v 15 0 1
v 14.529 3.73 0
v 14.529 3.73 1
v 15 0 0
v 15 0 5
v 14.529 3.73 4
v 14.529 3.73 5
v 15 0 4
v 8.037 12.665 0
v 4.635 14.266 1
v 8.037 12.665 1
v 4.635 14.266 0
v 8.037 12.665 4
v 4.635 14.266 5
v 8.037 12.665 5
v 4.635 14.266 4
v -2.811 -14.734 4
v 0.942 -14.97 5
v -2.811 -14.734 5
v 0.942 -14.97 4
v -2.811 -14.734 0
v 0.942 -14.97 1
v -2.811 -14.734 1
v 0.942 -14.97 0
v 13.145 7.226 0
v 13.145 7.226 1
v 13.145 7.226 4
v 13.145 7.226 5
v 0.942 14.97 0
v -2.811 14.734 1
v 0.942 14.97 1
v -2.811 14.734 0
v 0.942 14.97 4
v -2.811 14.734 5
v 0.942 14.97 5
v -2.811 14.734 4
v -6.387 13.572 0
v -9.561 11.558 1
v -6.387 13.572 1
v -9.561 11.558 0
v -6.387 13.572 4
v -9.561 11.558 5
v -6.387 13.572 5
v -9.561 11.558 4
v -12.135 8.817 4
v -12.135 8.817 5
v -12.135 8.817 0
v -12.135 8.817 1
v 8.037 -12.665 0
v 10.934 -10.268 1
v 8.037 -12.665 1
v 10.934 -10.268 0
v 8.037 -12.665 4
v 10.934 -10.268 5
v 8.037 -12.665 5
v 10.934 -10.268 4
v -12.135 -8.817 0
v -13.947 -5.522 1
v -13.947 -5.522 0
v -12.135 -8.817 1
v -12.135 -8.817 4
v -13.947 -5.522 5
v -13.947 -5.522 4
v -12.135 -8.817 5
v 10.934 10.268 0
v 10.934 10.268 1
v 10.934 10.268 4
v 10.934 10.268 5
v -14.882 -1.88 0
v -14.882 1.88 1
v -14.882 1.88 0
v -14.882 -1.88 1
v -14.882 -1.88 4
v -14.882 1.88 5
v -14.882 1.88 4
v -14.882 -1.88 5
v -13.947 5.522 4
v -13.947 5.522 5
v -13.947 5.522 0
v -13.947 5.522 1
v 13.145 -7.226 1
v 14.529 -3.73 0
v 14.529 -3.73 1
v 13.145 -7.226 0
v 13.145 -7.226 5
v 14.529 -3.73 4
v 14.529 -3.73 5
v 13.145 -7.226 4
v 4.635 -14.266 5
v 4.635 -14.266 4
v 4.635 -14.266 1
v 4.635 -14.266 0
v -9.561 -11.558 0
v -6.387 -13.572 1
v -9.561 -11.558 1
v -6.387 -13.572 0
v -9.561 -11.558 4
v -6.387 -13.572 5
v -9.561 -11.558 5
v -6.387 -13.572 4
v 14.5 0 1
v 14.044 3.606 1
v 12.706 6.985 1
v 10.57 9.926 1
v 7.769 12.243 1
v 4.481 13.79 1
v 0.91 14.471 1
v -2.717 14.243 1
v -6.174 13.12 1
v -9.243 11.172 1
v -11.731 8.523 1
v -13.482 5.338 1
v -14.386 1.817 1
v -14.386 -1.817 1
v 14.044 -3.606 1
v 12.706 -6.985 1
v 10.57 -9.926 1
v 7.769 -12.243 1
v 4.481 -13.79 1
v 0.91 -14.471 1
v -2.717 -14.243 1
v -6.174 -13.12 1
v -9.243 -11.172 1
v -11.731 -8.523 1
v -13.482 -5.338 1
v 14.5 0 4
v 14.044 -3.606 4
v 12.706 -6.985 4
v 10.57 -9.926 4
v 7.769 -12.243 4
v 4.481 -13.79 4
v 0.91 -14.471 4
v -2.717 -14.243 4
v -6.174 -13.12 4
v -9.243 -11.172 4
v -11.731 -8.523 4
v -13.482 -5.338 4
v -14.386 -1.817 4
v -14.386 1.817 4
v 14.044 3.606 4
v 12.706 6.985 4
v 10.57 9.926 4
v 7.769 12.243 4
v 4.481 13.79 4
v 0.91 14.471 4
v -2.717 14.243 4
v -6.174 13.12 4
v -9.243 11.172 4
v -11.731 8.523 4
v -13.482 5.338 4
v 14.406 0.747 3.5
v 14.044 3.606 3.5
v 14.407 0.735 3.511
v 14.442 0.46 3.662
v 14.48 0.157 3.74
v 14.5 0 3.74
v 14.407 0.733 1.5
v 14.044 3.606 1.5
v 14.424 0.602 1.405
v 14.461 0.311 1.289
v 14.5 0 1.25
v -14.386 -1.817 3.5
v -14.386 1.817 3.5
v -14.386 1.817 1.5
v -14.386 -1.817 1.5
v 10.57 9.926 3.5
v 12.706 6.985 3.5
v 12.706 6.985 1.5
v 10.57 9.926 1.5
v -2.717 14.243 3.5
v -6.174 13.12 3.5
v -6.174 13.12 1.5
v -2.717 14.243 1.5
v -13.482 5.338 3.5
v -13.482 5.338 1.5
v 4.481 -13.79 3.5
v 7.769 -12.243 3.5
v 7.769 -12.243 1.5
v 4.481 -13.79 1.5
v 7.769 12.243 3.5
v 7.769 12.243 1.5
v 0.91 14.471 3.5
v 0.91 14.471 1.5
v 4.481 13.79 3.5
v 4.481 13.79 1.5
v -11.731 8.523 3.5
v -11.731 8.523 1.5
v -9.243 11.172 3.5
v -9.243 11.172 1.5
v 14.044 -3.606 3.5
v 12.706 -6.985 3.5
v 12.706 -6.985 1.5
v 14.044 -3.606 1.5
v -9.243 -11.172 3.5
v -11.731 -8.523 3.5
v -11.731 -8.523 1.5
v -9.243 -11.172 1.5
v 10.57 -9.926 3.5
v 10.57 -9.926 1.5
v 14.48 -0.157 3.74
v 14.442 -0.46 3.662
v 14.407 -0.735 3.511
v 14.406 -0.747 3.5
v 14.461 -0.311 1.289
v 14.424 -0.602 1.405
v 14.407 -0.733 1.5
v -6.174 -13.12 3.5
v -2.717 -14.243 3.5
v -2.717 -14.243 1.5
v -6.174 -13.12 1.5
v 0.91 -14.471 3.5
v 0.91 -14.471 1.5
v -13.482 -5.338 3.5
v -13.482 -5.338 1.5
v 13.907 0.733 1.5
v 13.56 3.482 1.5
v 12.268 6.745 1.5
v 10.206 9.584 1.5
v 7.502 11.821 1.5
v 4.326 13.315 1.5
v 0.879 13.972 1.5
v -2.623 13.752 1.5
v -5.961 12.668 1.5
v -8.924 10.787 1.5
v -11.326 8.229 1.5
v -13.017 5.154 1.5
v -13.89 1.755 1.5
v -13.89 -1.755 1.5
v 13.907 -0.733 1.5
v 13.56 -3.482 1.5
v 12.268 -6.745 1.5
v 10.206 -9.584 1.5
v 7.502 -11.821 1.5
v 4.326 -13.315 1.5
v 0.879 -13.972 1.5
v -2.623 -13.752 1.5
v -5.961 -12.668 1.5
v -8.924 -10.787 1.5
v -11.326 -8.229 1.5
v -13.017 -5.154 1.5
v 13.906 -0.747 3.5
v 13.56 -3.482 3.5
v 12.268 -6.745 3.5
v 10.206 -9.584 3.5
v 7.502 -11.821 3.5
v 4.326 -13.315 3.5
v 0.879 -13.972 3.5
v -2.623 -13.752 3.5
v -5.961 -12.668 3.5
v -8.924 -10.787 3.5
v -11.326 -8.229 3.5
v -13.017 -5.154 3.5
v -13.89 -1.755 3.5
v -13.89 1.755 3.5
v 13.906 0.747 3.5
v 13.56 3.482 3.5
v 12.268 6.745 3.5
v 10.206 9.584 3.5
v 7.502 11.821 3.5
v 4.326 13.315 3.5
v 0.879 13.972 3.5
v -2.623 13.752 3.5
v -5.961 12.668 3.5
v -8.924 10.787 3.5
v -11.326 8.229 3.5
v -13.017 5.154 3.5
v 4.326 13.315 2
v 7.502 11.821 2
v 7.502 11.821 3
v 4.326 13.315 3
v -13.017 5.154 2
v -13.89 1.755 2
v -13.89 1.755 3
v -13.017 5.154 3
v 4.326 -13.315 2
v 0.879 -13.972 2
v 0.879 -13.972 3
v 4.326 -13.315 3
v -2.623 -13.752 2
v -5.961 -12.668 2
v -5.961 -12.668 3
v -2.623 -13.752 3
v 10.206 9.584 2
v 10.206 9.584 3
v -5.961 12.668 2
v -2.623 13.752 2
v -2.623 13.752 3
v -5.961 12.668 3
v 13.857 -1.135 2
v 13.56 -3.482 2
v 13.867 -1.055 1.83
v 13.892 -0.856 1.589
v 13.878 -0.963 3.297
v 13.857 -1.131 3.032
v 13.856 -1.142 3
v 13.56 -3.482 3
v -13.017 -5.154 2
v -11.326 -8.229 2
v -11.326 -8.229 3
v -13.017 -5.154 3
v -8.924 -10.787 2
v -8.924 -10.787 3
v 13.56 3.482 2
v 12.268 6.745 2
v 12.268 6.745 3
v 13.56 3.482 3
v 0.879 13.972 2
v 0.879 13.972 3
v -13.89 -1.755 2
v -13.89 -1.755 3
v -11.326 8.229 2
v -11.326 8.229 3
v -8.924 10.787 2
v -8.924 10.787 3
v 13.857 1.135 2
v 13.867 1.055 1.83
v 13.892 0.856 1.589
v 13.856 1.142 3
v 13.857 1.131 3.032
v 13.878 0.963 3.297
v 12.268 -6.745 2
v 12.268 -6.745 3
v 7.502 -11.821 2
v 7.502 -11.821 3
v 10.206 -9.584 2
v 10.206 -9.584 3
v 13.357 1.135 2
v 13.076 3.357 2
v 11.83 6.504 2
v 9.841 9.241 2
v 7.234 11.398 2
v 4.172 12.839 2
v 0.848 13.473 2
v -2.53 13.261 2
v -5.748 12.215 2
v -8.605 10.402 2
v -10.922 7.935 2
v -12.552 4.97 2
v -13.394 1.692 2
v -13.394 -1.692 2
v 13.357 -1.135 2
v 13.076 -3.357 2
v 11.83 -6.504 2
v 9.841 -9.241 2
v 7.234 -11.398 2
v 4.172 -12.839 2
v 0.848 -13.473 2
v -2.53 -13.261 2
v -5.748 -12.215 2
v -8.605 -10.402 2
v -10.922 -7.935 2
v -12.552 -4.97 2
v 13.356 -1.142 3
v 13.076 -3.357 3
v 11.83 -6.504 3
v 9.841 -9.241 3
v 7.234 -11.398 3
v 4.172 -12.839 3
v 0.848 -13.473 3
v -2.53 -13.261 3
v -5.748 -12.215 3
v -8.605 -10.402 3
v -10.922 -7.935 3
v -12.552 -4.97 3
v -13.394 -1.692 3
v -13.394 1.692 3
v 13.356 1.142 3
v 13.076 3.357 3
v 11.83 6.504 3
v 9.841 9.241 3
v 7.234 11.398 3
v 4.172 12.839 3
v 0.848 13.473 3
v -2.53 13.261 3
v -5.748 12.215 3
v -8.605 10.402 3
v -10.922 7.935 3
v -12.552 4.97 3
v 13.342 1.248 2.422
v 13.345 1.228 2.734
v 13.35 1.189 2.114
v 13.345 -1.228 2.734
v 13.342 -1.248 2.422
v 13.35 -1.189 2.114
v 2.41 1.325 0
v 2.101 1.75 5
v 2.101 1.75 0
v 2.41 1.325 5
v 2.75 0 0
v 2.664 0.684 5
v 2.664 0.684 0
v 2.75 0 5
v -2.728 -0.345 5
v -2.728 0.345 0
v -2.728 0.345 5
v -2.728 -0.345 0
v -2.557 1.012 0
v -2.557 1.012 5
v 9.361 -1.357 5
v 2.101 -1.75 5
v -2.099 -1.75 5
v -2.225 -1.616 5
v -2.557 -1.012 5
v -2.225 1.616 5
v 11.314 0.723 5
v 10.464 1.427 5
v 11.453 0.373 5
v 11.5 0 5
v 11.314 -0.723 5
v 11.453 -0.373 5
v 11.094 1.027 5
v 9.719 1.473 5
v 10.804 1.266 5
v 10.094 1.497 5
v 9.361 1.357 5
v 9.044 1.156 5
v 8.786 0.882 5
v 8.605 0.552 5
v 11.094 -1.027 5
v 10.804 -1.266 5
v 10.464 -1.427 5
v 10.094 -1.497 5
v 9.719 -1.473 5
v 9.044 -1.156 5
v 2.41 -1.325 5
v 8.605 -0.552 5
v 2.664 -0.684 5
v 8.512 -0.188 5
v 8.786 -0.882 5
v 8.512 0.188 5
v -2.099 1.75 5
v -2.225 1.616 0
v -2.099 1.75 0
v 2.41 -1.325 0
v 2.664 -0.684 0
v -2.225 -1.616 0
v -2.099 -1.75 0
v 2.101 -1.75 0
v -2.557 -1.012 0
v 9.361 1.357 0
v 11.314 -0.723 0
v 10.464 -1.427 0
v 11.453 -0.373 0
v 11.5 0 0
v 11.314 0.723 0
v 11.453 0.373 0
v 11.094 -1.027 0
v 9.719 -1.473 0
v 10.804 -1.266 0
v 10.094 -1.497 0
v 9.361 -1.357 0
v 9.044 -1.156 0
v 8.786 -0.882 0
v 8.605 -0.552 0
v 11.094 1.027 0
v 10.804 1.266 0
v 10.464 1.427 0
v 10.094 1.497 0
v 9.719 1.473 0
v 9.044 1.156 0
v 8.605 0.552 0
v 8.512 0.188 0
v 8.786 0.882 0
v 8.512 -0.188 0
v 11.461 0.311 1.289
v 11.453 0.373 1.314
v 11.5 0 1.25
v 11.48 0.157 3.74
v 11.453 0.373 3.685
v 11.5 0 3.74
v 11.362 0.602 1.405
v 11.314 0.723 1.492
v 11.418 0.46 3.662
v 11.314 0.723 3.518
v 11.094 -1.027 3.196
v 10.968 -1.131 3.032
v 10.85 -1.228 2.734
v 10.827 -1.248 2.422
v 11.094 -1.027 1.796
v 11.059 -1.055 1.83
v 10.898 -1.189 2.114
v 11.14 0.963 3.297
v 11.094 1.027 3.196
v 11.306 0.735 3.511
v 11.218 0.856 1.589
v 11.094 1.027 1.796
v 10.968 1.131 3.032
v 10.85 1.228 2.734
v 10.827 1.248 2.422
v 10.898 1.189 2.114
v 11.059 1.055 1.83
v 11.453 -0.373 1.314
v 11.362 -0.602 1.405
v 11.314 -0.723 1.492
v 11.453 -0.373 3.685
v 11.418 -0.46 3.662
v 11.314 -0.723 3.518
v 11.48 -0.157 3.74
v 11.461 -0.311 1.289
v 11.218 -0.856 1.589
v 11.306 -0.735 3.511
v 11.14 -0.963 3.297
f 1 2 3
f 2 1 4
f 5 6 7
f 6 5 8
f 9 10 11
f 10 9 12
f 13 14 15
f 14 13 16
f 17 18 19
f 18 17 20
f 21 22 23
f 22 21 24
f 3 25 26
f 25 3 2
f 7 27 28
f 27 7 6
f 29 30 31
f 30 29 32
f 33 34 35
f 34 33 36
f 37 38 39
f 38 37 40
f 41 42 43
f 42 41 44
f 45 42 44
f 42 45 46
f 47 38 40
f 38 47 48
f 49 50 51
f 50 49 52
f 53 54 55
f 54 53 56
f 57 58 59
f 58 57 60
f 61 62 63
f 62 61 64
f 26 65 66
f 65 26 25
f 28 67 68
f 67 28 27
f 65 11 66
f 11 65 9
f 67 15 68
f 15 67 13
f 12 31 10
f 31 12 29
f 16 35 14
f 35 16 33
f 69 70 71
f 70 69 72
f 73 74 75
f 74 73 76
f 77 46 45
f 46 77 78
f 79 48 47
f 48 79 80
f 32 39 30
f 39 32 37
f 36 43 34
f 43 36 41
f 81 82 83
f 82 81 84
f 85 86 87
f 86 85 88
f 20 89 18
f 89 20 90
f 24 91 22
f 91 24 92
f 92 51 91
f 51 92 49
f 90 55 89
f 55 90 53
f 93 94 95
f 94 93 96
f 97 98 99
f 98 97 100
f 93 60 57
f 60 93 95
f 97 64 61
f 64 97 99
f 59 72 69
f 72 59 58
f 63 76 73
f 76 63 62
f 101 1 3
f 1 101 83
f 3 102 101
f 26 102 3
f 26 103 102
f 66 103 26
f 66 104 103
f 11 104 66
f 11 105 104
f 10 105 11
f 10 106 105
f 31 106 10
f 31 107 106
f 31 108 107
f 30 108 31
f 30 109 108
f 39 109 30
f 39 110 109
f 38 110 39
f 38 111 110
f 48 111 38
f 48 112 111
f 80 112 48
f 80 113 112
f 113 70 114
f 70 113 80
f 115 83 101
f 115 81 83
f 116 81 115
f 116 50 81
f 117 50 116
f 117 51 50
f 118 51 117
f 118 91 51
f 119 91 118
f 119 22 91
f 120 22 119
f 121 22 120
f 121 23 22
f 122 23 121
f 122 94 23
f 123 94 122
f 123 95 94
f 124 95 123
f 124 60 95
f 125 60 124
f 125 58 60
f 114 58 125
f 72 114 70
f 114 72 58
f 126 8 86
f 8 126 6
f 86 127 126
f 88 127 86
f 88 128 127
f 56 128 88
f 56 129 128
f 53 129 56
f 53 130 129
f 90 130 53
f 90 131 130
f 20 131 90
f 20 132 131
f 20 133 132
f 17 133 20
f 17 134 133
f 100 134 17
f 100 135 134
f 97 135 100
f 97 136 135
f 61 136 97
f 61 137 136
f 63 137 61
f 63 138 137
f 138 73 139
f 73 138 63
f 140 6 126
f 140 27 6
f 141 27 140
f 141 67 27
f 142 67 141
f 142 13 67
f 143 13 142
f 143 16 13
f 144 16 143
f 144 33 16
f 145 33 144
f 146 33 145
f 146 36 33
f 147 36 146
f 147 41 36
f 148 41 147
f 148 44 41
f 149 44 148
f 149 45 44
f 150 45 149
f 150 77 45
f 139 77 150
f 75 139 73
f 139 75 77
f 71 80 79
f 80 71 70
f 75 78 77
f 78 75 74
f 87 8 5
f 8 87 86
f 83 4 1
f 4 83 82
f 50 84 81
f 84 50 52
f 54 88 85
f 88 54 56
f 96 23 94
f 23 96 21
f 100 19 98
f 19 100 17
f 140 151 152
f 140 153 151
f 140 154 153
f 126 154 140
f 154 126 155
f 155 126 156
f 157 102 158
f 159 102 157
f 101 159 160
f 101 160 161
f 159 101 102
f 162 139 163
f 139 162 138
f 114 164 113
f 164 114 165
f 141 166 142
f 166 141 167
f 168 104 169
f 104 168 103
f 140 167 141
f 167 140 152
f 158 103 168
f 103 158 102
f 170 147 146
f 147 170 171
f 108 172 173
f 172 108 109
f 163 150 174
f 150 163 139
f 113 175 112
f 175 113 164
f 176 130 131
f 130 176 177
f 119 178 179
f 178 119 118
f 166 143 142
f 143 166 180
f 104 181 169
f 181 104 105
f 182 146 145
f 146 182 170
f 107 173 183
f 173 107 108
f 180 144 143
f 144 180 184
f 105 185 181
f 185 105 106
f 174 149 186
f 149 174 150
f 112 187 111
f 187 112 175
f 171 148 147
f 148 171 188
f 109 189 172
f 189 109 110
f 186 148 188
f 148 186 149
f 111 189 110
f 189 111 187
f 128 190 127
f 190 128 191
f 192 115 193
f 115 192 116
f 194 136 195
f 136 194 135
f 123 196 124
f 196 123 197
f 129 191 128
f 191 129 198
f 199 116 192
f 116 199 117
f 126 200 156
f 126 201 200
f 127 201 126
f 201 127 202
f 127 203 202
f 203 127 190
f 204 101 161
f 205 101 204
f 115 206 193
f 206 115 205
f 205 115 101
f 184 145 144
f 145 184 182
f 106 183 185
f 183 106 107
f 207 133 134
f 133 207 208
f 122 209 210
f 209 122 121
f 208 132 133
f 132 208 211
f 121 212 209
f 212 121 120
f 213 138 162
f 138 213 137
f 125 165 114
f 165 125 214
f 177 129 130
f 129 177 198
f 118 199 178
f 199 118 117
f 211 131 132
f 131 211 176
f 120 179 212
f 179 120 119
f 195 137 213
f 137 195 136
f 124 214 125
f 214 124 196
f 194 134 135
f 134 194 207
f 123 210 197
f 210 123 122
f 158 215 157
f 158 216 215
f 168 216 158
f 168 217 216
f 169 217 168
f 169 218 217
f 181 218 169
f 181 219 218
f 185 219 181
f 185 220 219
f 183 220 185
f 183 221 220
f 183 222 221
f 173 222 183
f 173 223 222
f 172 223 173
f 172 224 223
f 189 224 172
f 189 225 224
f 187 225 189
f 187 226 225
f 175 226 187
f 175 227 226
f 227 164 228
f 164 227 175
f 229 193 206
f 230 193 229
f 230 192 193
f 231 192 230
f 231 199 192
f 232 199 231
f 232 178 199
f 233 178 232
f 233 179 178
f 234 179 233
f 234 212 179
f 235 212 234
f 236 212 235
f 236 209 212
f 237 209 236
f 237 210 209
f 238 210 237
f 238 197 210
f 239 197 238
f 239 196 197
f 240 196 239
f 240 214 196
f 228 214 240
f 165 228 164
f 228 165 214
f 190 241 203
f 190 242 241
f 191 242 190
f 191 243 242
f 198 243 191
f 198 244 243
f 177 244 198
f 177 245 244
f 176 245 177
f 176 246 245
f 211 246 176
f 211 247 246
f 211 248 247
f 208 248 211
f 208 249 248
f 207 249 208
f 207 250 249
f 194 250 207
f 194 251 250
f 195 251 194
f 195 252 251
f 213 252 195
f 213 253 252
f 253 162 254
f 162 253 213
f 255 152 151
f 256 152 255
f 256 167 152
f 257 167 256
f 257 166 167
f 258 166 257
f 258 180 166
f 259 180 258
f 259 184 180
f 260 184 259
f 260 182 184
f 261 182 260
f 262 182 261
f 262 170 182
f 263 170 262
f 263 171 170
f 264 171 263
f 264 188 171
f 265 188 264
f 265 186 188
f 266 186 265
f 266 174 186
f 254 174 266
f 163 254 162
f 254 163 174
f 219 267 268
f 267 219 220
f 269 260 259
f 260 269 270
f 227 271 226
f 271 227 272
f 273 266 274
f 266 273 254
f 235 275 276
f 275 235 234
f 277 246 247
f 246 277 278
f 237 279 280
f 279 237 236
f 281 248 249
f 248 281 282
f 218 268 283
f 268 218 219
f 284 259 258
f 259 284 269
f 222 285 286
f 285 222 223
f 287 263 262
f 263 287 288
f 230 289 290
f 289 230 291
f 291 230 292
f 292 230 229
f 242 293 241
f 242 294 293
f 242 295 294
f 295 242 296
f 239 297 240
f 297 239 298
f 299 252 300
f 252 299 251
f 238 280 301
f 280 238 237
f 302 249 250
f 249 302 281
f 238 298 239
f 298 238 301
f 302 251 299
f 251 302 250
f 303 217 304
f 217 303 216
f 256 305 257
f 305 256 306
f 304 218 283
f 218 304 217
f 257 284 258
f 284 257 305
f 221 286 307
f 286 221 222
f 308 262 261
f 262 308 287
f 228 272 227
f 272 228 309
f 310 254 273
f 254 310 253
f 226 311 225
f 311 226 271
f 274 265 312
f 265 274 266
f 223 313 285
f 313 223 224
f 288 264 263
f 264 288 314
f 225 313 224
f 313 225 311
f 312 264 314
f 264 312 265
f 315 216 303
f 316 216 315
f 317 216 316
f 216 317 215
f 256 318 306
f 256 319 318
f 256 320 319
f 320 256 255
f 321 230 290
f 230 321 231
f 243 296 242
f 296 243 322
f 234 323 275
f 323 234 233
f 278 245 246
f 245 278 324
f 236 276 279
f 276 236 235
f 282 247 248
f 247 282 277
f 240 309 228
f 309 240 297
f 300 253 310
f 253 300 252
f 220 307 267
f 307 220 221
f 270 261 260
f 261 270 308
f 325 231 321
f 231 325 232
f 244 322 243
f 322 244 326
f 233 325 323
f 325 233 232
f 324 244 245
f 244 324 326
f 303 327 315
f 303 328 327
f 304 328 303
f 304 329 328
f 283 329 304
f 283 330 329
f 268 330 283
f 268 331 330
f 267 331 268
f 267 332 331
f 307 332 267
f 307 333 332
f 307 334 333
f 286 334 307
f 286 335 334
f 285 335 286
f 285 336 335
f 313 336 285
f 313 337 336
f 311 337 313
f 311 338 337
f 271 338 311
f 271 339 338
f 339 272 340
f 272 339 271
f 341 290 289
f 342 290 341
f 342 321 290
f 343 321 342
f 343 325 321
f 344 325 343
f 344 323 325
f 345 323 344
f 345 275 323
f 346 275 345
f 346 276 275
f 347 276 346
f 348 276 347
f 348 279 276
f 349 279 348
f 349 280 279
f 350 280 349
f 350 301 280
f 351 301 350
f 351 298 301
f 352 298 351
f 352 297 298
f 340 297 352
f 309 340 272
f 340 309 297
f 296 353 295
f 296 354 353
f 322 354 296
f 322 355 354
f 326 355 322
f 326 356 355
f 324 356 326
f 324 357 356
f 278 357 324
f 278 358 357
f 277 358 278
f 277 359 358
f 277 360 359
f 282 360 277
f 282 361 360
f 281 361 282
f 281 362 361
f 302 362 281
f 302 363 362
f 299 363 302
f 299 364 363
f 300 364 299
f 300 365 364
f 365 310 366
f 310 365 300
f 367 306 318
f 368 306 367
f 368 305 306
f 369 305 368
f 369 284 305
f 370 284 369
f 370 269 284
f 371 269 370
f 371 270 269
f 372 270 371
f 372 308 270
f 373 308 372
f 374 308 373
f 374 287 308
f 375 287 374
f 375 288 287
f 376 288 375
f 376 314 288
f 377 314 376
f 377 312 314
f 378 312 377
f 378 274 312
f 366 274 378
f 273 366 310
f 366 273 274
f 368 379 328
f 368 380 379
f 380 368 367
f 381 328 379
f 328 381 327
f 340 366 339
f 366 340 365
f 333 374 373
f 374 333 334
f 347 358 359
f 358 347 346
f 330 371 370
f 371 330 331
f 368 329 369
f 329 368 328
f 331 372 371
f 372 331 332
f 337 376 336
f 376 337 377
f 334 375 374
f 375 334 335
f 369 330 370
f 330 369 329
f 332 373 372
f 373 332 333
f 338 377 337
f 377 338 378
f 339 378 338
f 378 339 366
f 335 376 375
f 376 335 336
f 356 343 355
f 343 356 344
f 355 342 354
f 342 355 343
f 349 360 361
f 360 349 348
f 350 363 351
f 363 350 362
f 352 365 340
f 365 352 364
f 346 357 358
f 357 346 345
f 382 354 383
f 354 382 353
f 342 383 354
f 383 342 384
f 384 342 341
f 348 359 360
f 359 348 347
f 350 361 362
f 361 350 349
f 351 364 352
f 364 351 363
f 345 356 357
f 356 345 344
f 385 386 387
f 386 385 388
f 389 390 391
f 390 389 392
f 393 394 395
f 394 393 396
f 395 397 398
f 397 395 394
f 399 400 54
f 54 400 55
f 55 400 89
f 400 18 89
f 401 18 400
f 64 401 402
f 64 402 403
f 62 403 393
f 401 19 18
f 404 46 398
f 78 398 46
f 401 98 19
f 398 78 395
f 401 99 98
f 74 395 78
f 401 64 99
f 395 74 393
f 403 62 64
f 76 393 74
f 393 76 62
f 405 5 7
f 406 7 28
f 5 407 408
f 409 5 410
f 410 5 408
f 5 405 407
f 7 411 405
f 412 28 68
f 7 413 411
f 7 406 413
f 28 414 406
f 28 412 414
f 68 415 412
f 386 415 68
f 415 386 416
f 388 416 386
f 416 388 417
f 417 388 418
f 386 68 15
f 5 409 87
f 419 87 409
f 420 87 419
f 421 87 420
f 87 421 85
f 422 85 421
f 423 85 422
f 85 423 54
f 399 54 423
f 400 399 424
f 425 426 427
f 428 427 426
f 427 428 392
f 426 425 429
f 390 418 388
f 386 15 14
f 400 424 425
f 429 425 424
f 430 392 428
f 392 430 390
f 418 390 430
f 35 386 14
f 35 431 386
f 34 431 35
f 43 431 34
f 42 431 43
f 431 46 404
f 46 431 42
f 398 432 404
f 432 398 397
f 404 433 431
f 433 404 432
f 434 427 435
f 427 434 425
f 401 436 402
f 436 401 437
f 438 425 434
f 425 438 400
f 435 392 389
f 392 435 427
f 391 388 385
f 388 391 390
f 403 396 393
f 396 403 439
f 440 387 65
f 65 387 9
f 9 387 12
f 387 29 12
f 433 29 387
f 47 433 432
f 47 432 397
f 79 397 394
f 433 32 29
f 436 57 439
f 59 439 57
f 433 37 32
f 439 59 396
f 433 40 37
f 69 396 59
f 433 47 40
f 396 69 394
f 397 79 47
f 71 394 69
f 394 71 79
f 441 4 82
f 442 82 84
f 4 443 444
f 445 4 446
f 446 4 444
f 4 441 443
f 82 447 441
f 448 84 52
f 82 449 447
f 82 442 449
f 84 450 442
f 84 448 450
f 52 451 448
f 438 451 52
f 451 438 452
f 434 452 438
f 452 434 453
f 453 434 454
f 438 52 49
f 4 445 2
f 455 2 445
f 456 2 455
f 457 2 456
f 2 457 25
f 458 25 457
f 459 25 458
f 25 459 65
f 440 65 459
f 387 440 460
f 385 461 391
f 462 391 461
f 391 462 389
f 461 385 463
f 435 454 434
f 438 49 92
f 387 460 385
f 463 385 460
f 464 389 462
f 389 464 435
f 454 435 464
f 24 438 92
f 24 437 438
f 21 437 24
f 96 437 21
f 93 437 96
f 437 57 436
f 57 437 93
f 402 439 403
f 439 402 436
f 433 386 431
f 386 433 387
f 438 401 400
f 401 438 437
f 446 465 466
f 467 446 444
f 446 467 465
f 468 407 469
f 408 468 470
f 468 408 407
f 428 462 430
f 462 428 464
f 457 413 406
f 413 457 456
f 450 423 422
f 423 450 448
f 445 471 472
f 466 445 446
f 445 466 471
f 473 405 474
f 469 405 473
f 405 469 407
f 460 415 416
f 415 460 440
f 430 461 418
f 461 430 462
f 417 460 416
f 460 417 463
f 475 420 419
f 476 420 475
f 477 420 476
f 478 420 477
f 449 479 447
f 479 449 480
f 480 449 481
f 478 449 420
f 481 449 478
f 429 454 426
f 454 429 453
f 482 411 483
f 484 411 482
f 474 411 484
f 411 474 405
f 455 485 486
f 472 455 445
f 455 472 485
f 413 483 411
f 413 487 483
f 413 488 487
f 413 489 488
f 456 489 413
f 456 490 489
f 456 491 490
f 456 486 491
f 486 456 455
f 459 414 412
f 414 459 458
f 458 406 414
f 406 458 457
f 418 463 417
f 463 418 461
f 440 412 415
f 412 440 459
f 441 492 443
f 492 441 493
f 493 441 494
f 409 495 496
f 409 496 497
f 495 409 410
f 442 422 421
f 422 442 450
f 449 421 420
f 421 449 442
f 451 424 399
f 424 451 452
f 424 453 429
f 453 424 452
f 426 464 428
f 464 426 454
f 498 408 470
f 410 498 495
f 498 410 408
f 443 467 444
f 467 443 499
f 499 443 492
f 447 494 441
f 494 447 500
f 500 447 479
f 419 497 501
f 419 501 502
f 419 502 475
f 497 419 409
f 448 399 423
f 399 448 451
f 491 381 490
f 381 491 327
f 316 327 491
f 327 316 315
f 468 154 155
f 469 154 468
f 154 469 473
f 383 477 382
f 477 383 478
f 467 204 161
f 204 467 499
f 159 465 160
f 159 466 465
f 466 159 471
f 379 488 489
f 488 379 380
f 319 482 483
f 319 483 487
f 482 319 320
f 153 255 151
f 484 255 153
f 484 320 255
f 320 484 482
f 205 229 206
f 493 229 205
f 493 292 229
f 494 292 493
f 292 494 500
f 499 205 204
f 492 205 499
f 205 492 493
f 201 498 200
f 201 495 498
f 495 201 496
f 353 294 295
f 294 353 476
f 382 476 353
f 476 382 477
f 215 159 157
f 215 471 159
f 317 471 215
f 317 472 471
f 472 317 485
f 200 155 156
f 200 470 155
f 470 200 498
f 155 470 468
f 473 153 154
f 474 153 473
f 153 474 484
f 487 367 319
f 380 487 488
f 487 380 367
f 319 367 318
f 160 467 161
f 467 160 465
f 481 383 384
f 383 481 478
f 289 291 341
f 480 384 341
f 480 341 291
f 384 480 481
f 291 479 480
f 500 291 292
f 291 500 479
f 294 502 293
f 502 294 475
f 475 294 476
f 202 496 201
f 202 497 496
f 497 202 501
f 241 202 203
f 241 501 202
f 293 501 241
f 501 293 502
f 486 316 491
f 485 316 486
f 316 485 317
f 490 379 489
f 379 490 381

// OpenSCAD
difference(){
    union(){
        cylinder(5,d=30,[0,0,0],$fn=25);
    }
    union(){
        intersection(){
                cylinder(5,d=5.5,[0,0,0],$fn=25);
                translate([-3,-1.75,0]) cube([6,3.5,5]);
        };
        difference(){
            translate([0,0,1]) cylinder(3,d=30,[0,0,0],$fn=25);
            cylinder(5,d=29,[0,0,0],$fn=25);
        }
        difference(){
            translate([0,0,1.5]) cylinder(2,d=30,[0,0,0],$fn=25);
            cylinder(5,d=28,[0,0,0],$fn=25);
        }
        difference(){
            translate([0,0,2]) cylinder(1,d=30,[0,0,0],$fn=25);
            cylinder(5,d=27,[0,0,0],$fn=25);
        }
        translate([10,0,0]) cylinder(5,d=3,[0,0,0],$fn=25);
        translate([10,0,2.5]) rotate([0.,90.,0]) cylinder(50,d=2.5,[0,0,0],$fn=25);
    };
};
